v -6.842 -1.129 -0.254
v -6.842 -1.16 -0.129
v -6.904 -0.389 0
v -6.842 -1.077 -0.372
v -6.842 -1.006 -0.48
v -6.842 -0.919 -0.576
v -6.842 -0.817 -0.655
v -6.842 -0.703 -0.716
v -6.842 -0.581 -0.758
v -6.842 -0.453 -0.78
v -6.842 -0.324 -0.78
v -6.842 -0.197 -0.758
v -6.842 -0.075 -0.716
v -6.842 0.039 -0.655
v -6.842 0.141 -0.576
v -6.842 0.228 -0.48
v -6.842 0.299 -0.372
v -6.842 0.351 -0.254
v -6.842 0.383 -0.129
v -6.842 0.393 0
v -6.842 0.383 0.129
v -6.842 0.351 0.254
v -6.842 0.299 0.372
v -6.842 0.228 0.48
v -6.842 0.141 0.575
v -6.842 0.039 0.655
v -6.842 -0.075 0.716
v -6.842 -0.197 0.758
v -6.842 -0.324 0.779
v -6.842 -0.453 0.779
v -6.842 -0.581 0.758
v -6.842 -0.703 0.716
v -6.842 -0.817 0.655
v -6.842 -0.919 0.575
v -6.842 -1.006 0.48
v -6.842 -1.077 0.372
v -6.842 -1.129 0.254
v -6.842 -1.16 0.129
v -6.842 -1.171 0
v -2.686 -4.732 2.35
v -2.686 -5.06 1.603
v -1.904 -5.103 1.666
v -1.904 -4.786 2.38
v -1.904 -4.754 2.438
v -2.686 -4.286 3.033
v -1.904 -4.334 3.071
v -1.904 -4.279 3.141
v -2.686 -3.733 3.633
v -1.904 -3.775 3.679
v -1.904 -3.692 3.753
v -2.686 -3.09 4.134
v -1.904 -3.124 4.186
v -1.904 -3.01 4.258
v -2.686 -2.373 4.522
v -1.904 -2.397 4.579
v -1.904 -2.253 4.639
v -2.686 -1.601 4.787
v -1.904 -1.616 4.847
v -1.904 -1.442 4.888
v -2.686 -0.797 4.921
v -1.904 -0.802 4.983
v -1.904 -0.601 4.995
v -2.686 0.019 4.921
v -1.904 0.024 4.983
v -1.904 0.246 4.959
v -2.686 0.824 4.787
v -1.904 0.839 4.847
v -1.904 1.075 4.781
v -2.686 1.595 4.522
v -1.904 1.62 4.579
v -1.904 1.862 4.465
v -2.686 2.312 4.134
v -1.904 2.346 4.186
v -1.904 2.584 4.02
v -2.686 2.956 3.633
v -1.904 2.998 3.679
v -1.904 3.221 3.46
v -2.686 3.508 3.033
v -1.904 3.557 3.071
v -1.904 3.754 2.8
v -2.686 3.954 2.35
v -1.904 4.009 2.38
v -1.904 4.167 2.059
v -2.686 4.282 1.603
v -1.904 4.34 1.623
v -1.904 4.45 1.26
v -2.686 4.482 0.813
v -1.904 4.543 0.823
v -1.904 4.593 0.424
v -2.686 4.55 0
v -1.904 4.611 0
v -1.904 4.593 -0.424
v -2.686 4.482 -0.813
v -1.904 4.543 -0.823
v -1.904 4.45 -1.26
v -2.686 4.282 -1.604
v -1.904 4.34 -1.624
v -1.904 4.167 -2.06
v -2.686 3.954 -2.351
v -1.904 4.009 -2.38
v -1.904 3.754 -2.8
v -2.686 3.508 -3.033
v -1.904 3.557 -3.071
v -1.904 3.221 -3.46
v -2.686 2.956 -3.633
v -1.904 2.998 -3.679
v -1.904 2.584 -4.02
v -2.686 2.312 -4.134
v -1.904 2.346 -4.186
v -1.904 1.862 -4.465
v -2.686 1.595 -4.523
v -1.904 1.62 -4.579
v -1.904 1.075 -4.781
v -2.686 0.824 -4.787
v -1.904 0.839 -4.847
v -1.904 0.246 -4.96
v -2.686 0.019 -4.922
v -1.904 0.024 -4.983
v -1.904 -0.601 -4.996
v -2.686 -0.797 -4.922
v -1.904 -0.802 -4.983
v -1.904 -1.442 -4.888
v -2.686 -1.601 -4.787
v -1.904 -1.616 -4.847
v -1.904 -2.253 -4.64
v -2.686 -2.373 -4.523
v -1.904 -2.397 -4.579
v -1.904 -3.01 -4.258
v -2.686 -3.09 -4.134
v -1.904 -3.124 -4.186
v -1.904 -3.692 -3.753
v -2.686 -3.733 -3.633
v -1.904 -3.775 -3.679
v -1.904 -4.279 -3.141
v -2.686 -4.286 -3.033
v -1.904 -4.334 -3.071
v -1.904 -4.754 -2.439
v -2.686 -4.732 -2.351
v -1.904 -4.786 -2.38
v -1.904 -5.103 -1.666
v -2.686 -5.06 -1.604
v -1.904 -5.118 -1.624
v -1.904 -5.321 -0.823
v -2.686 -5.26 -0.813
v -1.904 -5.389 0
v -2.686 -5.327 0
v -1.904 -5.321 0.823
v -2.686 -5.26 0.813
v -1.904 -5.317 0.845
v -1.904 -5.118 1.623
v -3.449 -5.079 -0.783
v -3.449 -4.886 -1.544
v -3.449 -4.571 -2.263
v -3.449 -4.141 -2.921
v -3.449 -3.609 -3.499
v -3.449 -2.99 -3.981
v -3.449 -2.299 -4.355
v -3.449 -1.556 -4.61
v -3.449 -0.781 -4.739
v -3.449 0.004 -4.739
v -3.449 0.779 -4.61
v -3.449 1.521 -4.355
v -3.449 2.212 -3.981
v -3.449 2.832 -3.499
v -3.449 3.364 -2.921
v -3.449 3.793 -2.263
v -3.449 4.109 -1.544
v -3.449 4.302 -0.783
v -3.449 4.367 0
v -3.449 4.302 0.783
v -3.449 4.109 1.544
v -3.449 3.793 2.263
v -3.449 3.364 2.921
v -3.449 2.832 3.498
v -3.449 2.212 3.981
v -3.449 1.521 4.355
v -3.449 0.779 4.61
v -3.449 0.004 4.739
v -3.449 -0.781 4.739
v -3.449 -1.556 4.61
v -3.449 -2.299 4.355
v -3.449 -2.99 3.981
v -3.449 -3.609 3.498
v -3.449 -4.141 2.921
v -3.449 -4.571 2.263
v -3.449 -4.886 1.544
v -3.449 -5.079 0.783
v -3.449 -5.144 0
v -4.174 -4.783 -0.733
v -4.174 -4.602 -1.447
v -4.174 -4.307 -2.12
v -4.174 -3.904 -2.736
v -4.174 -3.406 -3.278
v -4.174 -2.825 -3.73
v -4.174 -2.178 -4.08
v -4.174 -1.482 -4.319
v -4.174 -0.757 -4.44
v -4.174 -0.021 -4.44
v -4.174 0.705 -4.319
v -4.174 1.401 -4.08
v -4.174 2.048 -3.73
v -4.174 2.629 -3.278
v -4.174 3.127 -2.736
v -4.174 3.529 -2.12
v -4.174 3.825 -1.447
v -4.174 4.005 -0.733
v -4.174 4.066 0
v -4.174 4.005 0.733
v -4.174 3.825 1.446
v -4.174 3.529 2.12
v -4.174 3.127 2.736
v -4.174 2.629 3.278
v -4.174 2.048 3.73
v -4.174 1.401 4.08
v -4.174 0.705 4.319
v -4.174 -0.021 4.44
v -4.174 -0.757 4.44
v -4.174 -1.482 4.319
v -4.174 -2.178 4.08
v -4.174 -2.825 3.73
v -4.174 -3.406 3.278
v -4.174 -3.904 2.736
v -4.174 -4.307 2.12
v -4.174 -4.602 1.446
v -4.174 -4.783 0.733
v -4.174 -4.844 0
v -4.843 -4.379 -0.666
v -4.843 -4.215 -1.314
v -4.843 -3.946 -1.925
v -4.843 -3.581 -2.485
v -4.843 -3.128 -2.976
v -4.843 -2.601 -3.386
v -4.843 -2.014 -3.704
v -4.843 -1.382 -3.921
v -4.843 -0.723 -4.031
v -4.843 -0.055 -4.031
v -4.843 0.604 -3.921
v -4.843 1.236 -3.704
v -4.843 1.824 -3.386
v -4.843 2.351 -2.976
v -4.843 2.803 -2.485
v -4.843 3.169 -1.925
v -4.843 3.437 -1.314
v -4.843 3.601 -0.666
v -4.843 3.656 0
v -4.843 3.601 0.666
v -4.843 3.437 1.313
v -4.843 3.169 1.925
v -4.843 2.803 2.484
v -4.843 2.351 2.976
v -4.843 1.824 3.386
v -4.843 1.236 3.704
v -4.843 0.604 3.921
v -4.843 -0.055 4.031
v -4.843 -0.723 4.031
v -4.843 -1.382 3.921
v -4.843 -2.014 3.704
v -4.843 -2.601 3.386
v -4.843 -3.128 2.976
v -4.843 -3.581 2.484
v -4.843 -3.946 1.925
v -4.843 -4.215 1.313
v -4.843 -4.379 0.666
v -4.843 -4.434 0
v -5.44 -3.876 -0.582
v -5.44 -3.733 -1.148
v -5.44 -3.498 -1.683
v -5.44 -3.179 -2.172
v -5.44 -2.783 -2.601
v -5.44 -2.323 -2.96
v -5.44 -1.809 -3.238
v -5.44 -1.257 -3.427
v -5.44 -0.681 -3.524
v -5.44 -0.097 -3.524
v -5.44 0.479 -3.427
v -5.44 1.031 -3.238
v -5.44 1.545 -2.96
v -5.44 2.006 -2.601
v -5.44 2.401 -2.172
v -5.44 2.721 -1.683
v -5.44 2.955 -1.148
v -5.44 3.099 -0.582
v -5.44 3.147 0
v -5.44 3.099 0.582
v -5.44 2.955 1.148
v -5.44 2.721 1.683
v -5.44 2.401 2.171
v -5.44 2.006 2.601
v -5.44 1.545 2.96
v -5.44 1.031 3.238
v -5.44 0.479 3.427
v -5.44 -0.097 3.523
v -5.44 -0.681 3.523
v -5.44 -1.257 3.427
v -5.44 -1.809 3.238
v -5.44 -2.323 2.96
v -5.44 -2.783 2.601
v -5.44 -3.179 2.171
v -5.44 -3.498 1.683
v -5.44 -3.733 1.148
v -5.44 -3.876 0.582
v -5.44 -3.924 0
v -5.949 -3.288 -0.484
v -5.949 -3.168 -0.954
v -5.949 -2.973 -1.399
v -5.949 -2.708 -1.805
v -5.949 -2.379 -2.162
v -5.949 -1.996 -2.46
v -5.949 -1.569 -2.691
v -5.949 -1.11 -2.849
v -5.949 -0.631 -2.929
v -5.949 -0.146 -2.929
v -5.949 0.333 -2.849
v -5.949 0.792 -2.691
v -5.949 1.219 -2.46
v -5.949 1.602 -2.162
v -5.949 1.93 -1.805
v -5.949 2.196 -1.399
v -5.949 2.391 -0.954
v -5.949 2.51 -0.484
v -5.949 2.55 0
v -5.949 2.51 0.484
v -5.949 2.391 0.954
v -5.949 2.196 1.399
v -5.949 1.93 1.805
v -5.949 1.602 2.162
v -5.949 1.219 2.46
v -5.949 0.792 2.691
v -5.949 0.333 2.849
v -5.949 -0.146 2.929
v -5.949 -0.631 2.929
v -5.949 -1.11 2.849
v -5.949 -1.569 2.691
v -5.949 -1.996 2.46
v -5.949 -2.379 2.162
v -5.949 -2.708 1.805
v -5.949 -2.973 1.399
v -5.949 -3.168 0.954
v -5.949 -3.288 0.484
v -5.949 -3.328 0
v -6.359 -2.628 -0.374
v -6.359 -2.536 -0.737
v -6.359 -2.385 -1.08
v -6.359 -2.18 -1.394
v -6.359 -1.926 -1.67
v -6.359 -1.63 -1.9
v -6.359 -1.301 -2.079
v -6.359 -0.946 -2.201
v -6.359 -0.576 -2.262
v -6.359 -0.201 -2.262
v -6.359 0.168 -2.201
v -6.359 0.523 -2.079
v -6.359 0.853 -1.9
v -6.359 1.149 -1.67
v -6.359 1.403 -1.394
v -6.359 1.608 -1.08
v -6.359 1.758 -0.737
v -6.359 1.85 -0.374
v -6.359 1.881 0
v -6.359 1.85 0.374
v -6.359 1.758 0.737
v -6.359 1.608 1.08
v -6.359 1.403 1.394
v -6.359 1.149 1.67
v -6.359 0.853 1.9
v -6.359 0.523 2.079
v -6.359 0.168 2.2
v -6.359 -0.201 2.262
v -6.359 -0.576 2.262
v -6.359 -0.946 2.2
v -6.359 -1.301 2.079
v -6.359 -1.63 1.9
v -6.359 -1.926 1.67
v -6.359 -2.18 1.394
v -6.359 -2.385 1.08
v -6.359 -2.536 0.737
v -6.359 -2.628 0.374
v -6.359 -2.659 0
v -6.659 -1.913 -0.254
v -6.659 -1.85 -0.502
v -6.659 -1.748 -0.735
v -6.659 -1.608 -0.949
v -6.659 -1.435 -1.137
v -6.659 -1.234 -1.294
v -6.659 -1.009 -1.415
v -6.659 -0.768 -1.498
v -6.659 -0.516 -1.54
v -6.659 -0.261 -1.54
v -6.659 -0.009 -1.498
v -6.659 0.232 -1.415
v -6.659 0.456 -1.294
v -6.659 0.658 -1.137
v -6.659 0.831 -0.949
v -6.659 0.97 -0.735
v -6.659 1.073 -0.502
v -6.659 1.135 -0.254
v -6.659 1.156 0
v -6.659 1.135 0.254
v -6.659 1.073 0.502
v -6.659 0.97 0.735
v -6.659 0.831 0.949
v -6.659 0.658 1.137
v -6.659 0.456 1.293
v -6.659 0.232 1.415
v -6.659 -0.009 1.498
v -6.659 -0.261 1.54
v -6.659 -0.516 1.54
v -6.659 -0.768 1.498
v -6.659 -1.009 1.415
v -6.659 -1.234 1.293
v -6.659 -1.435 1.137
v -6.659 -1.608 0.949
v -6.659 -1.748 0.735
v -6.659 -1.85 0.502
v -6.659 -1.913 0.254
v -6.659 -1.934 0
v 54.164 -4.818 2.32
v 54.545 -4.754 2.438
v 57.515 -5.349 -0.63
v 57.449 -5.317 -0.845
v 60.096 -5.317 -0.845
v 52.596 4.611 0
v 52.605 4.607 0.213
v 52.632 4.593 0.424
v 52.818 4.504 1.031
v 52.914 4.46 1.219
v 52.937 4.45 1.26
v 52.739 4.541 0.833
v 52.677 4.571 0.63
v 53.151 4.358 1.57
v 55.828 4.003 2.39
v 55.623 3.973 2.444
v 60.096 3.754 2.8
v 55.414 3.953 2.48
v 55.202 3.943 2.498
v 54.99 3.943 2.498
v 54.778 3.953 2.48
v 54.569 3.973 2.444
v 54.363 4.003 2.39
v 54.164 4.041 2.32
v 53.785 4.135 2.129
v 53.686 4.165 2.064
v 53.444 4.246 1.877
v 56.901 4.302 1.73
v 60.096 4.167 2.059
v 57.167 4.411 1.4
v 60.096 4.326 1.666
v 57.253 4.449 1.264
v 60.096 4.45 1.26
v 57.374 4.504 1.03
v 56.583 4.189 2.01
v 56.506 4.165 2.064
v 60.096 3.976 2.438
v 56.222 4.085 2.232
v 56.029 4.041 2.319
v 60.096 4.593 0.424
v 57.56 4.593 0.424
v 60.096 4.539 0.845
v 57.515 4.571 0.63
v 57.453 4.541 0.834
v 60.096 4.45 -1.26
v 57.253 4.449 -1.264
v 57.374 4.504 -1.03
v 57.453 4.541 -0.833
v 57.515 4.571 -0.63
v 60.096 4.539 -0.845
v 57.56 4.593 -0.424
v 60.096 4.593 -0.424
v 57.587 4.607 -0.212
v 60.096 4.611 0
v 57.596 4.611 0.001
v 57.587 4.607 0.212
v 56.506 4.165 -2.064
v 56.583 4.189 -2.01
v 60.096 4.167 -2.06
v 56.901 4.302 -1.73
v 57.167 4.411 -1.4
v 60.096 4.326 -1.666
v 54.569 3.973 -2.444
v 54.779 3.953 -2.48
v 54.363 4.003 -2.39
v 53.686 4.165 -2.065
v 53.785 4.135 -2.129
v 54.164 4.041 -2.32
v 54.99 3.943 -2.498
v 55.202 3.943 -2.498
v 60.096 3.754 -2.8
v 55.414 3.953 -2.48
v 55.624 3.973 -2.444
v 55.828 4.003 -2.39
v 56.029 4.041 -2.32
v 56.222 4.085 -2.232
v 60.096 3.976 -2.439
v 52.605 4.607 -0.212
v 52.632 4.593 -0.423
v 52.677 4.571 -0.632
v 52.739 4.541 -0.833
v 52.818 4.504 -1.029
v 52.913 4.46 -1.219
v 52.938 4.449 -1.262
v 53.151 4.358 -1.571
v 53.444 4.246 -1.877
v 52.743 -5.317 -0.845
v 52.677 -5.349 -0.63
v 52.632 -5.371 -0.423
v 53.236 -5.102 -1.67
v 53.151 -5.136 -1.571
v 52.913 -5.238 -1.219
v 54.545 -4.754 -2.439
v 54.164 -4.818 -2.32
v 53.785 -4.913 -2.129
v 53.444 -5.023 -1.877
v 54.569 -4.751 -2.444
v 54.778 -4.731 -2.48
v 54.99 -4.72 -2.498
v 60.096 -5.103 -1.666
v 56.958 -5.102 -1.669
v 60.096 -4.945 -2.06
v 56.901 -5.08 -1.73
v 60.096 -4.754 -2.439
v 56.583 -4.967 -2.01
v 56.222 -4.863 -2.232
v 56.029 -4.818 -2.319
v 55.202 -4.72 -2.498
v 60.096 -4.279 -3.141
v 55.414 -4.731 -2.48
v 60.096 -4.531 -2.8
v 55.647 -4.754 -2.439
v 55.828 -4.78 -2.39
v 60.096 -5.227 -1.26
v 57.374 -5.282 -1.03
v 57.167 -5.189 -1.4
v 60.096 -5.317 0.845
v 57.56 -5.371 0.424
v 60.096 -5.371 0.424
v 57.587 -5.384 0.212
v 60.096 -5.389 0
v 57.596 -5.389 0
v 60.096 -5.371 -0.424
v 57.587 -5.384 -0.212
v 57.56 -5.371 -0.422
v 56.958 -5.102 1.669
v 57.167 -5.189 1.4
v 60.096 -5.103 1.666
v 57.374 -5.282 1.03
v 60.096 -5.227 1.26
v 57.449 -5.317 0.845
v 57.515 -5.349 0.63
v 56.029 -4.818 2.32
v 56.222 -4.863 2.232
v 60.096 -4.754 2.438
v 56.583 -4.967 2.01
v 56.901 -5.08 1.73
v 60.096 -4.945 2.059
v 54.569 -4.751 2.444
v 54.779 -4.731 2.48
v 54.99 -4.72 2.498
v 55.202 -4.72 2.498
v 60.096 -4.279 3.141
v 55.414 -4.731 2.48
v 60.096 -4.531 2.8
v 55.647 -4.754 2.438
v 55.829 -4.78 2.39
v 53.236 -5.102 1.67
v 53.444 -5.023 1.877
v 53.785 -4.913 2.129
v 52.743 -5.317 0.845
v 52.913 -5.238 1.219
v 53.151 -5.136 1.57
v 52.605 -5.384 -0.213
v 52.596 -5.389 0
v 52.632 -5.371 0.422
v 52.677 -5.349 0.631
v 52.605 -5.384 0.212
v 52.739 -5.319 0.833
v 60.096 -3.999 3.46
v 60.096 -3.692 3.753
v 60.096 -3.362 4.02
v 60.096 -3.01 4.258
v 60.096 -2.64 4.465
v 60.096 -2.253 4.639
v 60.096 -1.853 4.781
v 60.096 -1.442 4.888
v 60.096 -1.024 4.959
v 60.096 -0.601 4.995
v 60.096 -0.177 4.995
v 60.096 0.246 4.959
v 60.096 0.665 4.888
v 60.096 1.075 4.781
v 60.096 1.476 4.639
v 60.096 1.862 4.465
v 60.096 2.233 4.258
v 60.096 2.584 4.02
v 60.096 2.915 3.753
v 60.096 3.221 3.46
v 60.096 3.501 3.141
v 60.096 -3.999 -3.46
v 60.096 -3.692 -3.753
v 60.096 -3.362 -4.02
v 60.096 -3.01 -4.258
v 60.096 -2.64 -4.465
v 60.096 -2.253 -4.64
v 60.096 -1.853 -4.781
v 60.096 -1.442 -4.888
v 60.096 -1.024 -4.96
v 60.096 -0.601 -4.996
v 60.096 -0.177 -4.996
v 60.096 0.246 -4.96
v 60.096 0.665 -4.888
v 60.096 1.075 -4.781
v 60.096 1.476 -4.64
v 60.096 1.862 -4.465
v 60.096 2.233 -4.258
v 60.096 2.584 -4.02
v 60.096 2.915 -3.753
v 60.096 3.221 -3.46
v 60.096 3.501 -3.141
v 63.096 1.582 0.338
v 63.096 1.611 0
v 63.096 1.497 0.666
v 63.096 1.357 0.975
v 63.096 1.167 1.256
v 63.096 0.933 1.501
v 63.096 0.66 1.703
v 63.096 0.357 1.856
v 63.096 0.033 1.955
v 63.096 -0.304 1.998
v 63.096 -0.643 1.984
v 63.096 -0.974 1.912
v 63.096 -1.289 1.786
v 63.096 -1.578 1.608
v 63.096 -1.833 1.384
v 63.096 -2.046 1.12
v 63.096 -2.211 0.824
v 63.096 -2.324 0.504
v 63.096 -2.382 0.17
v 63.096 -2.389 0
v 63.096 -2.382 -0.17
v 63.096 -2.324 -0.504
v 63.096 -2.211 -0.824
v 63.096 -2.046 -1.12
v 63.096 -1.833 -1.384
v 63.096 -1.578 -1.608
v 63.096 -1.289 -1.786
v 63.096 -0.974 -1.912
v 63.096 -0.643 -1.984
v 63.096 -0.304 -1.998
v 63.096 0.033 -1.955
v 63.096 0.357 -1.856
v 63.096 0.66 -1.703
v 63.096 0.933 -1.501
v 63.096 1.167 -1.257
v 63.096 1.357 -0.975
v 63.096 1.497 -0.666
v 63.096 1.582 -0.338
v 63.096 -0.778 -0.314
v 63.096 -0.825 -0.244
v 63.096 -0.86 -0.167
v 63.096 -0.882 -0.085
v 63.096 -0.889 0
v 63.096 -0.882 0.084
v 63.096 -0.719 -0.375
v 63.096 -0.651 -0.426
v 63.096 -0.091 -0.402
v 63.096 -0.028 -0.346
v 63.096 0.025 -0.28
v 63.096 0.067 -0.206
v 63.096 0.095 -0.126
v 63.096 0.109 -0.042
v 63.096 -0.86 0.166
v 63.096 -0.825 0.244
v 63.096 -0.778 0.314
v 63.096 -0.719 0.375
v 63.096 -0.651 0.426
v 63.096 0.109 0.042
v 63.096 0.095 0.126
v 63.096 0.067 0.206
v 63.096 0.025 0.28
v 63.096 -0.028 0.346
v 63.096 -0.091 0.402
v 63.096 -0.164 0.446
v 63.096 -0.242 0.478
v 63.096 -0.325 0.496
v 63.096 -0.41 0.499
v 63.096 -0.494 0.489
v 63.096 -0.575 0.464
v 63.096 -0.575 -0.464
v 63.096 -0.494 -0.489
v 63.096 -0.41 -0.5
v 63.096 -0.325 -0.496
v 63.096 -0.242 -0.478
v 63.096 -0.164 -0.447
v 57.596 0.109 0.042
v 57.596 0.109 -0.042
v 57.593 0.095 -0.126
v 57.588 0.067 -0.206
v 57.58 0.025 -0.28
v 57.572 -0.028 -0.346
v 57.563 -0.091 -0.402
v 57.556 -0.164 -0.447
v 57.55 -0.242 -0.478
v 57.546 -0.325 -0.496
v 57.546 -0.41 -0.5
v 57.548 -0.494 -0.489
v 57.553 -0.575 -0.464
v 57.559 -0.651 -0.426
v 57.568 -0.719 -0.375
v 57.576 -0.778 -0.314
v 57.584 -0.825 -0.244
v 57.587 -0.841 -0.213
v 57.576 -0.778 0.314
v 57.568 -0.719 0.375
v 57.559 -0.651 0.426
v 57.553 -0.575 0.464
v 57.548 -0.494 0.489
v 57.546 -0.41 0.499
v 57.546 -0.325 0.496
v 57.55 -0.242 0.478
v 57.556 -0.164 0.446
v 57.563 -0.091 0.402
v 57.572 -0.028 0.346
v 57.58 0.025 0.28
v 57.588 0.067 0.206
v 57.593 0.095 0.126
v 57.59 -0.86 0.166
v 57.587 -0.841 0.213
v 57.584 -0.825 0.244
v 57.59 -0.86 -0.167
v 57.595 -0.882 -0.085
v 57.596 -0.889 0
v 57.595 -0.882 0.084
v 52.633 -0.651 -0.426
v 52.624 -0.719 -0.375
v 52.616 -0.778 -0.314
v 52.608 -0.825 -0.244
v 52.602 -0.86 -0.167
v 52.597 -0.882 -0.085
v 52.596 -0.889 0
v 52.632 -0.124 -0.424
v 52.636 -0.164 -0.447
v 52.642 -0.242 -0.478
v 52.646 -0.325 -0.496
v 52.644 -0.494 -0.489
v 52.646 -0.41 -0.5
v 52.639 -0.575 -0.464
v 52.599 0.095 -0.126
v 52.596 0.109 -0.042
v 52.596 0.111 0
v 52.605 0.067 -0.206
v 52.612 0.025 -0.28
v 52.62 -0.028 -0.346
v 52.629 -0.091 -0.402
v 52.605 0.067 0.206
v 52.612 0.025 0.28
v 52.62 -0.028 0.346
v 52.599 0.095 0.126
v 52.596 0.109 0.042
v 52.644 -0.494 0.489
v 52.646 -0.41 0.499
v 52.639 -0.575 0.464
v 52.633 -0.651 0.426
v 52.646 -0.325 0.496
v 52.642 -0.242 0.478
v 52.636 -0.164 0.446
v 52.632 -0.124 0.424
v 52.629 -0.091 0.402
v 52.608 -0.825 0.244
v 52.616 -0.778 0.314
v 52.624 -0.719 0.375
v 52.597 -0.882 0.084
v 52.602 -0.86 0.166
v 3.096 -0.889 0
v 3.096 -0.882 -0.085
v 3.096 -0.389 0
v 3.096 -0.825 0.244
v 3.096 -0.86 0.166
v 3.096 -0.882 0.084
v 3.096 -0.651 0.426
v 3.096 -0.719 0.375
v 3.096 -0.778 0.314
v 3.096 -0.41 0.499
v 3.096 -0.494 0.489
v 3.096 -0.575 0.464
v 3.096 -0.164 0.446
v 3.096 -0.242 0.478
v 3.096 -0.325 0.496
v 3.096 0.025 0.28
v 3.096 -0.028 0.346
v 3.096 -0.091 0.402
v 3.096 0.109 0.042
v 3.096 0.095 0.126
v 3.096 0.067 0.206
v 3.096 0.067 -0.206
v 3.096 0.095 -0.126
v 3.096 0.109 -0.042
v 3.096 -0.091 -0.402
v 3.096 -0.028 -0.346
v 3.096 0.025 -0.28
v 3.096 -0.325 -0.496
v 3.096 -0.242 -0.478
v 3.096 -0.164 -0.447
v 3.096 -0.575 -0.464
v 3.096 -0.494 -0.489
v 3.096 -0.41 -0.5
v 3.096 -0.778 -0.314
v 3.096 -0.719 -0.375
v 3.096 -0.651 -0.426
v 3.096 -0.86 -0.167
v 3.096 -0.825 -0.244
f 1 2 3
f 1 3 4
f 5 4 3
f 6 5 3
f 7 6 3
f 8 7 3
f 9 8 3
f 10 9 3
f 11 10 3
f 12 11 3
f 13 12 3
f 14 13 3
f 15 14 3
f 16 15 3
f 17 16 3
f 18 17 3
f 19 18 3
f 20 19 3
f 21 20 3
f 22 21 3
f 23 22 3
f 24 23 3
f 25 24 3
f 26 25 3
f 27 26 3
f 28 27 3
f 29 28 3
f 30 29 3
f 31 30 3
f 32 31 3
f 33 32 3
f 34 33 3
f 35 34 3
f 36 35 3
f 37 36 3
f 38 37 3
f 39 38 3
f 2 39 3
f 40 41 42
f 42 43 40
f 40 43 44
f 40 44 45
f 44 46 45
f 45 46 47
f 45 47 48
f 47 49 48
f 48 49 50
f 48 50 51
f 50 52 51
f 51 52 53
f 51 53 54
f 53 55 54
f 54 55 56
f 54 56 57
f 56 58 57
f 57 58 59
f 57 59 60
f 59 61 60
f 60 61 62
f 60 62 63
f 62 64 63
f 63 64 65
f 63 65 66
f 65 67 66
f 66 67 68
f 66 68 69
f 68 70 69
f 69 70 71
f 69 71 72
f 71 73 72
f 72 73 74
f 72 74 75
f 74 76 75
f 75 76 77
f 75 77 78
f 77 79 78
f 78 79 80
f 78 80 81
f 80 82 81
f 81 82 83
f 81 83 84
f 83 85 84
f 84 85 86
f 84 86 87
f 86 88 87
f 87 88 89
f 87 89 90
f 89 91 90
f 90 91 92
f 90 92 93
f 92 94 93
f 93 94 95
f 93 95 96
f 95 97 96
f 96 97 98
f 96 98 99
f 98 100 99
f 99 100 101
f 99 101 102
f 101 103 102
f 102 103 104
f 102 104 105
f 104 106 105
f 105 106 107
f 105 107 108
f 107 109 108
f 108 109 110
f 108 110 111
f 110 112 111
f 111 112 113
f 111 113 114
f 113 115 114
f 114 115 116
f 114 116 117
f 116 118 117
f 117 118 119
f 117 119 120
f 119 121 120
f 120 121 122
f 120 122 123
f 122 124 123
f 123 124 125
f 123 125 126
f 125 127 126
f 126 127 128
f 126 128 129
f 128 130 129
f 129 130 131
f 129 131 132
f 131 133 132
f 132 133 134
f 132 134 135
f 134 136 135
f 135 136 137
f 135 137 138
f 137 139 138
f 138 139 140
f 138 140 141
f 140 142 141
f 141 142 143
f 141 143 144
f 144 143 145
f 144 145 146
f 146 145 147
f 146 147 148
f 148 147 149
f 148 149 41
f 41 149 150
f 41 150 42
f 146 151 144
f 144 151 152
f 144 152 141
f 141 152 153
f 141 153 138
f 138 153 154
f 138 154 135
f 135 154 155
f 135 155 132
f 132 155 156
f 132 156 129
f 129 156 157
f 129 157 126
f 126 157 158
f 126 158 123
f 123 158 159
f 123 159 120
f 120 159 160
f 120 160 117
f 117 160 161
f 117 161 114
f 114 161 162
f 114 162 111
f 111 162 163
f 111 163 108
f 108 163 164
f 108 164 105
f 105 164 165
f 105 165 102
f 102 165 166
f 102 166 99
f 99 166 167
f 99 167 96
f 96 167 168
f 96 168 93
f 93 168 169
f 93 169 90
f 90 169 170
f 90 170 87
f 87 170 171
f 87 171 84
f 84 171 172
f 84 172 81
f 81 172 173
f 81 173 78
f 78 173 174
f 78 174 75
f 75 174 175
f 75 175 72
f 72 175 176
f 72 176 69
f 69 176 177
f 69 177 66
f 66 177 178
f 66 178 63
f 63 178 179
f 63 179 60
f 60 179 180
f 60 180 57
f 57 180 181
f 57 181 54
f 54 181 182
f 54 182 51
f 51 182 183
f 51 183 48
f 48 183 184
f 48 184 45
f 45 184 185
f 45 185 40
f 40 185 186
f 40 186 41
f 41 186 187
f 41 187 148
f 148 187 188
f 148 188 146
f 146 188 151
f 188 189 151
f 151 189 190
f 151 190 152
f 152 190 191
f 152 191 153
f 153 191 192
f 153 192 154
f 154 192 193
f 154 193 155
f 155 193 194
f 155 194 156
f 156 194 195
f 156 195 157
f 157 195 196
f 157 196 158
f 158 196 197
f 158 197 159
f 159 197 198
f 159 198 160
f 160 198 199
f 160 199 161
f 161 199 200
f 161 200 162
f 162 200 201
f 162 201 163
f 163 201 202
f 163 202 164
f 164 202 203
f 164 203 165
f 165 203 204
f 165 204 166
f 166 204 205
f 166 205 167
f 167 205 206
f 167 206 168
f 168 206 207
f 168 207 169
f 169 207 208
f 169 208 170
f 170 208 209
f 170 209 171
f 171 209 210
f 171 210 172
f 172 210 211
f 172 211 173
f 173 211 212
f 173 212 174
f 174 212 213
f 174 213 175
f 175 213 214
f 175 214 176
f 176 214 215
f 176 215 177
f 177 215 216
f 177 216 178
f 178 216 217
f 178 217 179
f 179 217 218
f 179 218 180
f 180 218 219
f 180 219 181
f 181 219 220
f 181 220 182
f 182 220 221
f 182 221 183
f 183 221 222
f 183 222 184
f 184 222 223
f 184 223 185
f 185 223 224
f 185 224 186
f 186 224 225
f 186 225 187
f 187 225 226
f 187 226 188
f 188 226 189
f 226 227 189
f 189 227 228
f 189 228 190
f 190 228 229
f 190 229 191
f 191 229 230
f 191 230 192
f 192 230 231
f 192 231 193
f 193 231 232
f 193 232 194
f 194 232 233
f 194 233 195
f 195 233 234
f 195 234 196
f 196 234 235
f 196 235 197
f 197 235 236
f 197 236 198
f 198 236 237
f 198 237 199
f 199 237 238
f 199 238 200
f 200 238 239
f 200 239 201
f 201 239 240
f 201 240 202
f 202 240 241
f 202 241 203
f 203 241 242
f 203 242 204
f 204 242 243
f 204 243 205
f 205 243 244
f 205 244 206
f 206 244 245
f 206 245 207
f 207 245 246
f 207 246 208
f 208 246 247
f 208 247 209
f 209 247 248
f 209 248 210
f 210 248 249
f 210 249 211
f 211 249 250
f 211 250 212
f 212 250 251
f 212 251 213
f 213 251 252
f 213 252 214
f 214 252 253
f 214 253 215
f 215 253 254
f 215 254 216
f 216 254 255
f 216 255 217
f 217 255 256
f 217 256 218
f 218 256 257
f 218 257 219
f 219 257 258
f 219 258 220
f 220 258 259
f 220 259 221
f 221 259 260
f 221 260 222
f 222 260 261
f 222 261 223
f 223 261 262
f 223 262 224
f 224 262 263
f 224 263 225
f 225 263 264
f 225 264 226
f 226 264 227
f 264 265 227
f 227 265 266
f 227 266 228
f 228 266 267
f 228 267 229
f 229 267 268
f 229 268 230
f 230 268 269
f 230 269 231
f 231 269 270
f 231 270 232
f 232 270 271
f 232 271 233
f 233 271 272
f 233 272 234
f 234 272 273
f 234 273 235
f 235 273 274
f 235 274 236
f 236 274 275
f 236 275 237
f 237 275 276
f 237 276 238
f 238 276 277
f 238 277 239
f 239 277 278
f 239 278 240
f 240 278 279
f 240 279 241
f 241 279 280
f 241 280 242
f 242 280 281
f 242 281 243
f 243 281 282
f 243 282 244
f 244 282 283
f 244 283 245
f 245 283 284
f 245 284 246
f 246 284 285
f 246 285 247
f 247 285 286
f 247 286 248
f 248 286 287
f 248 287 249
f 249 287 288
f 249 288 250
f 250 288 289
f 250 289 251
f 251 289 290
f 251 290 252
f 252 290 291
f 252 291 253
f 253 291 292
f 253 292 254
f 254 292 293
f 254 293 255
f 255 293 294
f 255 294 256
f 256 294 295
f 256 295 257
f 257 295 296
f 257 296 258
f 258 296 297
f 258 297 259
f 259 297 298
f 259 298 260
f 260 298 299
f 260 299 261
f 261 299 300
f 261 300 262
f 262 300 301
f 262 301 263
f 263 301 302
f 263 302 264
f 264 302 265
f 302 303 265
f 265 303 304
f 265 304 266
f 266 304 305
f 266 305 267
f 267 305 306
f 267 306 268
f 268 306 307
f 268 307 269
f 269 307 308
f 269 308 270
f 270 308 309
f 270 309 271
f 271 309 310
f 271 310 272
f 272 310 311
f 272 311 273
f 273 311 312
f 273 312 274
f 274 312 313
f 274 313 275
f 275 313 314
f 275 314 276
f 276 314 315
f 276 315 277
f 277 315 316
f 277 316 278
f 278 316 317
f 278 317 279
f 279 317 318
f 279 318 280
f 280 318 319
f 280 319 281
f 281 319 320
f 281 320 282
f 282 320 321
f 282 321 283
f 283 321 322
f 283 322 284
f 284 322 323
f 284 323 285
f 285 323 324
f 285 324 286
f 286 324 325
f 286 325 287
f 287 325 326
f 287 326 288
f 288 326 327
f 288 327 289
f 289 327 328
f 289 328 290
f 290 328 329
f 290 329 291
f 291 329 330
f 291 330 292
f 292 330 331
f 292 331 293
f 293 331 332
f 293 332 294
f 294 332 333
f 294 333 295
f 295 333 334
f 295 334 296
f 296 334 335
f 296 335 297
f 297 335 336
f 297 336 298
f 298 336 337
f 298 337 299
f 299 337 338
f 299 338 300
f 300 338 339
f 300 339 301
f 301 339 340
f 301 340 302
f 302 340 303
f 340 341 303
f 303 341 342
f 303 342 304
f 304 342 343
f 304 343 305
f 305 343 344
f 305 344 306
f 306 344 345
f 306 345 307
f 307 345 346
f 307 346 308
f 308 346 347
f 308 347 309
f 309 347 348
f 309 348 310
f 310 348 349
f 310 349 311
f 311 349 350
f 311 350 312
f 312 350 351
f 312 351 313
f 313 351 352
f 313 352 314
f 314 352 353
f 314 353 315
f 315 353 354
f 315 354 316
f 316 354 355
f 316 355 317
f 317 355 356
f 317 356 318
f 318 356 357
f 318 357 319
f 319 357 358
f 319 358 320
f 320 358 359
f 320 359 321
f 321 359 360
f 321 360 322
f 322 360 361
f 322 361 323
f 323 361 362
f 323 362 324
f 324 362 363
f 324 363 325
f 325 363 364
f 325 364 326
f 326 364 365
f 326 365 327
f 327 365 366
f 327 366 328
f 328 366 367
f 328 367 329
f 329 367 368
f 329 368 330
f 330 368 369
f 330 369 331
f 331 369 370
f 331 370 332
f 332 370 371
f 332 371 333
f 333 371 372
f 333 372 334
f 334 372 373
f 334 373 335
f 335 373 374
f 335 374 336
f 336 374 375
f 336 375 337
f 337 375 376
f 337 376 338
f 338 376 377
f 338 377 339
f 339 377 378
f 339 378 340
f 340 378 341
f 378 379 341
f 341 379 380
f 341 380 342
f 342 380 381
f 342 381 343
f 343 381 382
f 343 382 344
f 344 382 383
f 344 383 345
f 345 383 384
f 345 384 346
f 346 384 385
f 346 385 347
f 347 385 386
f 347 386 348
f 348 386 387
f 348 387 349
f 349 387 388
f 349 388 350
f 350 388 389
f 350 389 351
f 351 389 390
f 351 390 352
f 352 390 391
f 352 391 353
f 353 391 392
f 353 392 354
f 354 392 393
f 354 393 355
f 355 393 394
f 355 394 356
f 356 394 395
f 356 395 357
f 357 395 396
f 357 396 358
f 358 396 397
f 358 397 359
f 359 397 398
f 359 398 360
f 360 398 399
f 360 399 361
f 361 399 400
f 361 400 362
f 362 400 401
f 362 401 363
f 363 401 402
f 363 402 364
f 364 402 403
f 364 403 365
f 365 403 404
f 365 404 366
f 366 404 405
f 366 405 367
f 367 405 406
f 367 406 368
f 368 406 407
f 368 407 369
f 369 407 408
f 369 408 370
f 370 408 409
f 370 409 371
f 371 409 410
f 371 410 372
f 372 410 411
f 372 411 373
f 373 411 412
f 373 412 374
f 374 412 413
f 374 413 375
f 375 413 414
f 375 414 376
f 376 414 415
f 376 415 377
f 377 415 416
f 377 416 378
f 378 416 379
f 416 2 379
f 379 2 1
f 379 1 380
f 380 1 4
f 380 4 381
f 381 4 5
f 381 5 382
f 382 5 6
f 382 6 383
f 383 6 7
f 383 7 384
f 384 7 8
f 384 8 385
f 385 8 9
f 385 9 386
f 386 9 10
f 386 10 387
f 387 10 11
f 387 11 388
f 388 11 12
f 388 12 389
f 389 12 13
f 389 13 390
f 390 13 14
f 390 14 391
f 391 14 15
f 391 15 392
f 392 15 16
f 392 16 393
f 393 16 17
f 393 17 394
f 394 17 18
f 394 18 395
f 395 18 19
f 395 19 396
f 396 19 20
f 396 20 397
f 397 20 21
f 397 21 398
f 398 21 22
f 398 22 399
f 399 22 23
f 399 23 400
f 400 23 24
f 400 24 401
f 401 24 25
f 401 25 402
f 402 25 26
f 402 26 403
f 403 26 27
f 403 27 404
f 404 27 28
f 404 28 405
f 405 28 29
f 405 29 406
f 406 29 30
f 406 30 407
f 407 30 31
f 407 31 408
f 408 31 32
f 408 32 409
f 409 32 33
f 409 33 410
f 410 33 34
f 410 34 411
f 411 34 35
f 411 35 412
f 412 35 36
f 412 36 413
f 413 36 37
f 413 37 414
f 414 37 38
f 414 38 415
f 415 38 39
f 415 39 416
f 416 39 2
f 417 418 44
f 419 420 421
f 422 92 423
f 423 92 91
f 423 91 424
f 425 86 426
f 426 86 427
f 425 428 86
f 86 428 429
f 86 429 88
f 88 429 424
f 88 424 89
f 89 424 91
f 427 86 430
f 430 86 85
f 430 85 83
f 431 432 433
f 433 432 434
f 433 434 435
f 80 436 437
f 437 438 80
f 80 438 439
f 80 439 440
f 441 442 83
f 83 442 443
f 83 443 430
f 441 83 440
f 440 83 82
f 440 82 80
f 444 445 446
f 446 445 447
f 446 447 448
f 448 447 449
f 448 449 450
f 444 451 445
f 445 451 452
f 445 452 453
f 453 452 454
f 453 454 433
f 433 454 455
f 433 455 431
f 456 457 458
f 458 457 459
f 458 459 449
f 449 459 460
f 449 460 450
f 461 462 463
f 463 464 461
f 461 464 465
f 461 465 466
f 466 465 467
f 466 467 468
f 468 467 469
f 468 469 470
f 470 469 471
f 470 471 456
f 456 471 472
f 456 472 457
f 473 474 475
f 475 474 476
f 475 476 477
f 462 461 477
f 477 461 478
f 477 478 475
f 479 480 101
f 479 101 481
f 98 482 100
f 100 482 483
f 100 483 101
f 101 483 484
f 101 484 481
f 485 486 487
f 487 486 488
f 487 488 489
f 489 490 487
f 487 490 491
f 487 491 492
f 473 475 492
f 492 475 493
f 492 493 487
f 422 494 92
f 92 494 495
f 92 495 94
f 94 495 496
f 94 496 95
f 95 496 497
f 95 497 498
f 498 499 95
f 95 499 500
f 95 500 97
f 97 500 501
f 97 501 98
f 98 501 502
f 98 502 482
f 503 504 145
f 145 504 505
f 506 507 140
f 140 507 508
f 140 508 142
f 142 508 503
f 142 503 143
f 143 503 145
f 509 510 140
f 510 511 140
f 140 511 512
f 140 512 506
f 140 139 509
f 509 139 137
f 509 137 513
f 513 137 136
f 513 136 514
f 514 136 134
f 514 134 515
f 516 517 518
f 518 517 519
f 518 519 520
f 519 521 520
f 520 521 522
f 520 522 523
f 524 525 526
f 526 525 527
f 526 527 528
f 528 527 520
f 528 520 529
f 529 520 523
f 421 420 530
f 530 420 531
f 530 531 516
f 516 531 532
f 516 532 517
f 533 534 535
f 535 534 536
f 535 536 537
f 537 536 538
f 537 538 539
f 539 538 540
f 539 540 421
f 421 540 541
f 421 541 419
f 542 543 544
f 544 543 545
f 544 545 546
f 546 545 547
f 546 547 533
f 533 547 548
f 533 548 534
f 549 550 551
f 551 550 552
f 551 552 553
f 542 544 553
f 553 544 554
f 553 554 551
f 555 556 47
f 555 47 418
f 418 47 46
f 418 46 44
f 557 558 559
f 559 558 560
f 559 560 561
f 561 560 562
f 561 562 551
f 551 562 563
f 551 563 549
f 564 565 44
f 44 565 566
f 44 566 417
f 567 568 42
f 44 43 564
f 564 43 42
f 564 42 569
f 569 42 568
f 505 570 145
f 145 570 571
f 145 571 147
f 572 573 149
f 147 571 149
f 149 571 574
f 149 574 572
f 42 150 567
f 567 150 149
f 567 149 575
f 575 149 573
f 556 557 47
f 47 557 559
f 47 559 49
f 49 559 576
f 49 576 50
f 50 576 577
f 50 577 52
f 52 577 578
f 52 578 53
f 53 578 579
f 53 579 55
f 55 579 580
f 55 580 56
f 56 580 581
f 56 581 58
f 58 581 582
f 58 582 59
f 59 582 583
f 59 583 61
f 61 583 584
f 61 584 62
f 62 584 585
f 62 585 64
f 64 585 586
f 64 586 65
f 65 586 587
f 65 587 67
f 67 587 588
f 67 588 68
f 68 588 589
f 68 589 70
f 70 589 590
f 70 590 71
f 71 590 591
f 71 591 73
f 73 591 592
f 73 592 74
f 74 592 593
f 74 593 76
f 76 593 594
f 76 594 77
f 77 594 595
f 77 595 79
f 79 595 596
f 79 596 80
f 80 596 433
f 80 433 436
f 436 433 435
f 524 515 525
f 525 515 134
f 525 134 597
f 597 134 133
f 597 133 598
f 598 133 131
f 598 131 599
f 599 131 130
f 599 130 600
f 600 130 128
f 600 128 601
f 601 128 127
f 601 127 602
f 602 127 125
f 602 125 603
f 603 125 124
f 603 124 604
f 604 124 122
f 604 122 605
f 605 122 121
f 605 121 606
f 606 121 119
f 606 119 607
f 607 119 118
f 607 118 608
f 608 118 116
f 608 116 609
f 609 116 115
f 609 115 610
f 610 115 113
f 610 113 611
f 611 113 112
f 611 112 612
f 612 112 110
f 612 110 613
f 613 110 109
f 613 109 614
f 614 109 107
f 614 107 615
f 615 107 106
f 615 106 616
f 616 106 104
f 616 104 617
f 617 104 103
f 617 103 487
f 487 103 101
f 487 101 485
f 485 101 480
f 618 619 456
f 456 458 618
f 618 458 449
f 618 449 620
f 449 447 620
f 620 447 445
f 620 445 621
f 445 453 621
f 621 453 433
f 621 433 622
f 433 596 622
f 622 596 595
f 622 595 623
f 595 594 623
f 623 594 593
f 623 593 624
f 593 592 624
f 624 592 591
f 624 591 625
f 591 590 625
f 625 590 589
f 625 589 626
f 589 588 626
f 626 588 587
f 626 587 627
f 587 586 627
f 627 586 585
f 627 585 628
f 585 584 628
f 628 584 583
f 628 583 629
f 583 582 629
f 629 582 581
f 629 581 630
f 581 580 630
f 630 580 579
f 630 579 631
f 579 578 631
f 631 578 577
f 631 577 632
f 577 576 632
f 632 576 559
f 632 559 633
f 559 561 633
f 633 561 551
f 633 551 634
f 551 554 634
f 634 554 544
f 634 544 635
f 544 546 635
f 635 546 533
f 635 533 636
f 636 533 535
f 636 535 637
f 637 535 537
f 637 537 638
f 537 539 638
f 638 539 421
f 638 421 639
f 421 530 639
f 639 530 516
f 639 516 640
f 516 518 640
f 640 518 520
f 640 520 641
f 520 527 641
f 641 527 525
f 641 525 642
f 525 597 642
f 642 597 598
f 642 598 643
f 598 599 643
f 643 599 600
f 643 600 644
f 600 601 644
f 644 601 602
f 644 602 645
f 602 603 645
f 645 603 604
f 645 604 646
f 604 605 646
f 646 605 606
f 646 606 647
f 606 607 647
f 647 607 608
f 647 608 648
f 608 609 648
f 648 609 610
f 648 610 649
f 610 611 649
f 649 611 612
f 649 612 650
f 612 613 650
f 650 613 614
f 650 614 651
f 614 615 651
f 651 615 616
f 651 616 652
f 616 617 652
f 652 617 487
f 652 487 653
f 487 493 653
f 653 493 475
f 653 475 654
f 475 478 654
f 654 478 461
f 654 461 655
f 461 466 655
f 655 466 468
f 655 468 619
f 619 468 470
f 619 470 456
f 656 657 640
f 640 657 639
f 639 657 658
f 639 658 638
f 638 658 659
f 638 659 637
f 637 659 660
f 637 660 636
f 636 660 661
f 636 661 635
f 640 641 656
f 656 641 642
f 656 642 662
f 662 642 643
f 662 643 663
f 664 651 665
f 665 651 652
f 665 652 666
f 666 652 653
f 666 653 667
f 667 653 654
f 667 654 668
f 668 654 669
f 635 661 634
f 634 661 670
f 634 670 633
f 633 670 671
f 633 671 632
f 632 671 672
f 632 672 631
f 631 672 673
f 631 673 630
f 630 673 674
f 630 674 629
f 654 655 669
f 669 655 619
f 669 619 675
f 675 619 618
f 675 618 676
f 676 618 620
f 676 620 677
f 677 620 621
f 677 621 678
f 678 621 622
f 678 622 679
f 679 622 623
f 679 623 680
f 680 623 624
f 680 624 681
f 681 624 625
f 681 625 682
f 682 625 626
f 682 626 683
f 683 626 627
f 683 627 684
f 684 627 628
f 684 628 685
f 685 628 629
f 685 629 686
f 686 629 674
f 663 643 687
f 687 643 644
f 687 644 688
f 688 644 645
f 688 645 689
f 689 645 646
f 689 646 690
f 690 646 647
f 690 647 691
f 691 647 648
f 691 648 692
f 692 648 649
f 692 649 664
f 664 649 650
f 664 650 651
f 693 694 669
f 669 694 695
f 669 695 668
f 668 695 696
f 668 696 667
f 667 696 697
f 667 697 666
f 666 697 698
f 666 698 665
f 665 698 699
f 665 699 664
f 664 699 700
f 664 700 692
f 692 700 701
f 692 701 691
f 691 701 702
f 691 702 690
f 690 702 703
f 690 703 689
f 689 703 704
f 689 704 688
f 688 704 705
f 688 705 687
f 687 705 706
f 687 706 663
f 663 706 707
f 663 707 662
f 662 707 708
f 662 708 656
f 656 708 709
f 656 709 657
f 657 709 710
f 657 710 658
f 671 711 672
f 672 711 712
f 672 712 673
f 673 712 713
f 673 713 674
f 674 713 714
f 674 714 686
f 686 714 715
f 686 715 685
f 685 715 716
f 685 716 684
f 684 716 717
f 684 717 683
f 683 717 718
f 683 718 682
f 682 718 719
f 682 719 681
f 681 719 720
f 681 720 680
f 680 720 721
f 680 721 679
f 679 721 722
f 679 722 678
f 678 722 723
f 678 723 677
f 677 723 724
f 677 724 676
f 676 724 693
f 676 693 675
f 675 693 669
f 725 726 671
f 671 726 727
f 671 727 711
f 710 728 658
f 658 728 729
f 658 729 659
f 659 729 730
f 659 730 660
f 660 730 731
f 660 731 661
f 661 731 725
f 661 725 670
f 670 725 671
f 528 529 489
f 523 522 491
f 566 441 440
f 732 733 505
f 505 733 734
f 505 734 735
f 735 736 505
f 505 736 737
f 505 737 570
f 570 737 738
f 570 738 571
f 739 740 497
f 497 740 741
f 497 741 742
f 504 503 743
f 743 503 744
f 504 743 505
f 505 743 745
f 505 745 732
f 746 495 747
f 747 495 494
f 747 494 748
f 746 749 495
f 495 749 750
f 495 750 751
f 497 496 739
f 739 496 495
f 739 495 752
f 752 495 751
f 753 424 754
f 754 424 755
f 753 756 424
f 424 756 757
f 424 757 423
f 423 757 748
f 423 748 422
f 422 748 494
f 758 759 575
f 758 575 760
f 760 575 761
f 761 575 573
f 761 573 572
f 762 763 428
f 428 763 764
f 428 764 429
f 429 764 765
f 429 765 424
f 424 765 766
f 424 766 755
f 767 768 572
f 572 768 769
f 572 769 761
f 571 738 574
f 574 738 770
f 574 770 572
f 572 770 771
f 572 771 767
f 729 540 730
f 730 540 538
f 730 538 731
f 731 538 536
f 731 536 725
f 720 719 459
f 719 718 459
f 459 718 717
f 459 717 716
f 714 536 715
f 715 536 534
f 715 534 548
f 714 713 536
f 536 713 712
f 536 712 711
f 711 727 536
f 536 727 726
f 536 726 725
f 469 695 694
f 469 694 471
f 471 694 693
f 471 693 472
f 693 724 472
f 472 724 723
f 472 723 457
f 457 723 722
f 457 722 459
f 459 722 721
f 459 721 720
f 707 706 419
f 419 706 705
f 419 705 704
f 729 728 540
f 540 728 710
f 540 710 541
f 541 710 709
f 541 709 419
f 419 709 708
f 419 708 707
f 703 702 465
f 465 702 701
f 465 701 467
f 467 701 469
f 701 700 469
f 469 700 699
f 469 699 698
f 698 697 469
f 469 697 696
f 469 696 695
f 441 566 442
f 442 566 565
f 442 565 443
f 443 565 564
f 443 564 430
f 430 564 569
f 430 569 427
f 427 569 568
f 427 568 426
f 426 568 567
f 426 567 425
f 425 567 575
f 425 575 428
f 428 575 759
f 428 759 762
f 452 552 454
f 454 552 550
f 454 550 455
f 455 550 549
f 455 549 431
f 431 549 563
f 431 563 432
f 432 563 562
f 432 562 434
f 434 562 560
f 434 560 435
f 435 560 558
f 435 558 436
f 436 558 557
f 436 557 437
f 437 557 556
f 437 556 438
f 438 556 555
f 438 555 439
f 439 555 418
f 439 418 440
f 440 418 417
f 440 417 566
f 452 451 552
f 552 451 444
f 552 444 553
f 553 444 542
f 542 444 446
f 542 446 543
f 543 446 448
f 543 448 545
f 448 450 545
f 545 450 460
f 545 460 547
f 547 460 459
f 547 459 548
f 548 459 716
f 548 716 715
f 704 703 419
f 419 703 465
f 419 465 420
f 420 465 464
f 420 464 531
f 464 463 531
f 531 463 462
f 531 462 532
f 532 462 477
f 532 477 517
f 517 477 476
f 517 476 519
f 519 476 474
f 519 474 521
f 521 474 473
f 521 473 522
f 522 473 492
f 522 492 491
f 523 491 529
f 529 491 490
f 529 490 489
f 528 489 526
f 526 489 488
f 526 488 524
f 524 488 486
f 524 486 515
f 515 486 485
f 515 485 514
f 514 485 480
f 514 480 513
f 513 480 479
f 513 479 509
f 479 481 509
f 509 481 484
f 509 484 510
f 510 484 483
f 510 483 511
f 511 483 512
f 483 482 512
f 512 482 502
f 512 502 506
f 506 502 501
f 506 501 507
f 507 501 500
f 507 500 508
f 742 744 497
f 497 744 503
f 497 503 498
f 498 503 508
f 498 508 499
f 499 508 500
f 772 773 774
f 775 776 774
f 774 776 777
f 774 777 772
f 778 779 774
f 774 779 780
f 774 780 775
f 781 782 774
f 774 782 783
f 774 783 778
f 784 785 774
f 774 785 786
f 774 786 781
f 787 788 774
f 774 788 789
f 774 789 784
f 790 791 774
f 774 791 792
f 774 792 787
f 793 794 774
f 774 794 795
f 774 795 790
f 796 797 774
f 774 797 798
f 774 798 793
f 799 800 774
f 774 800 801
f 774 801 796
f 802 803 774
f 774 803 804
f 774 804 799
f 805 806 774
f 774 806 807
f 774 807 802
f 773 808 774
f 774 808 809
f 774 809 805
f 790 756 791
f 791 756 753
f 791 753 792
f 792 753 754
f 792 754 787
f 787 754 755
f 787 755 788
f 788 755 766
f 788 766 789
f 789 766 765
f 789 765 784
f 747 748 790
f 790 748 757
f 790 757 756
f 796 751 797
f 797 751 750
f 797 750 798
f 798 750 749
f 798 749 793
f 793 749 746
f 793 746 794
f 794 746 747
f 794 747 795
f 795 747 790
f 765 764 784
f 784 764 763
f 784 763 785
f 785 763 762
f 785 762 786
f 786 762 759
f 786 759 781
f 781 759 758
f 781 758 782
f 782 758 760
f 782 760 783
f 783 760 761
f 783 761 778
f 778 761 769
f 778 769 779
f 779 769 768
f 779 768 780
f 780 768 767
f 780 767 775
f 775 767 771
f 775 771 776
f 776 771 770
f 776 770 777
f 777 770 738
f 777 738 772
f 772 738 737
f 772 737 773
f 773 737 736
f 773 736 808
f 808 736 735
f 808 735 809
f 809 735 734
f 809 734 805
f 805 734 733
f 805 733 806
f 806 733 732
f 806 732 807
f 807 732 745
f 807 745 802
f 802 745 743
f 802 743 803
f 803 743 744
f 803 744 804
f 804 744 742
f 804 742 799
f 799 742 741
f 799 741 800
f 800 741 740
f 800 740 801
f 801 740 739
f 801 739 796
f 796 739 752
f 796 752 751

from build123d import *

# Parameters (mm, degrees)
SKETCH4_R               = 0.5
CUT_EXTRUDE1_DEPTH      = 60
CUT_EXTRUDE2_DEPTH      = 65.078926224
CUT_EXTRUDE2_DEPTH_BACK = 65.078926224
SKETCH5_R               = 2.5


with BuildPart() as part:
    # Sketch3 → Revolve1 (revolve)
    with BuildSketch(Plane.XY):
        with BuildLine():
            Line((-1.903971709, 4.611227449), (60.096028291, 4.611227449))
            Line((60.096028291, 4.611227449), (63.096028291, 1.611227449))
            Line((63.096028291, 1.611227449), (63.096028291, -0.388772551))
            Line((63.096028291, -0.388772551), (-6.903971709, -0.388772551))
            ThreePointArc((-6.903971709, -0.388772551), (-5.439505615, 3.146761355), (-1.903971709, 4.611227449))
        make_face()
    revolve(axis=Axis((63.096028291, -0.388772551, 0), (-1, 0, 0)))

    # Sketch4 → Cut-Extrude1 (cut)
    with BuildSketch(Plane(origin=(63.096028291, 0, 0), x_dir=(0, 0, -1), z_dir=(1, 0, 0))):
        with Locations(Location((0, -0.388772551, 0), (0, 0, 90))):
            Circle(SKETCH4_R)
    extrude(amount=-CUT_EXTRUDE1_DEPTH, mode=Mode.SUBTRACT)

    # Sketch5 → Cut-Extrude2 (cut, two sides: drawn at the far end of the back side and taken through both)
    with BuildSketch(Plane(origin=(0, 4.611227449, 0), x_dir=(1, 0, 0), z_dir=(0, 1, 0)).offset(-CUT_EXTRUDE2_DEPTH_BACK)):
        with Locations(Location((55.096028291, 0, 0), (0, 0, 180))):
            Circle(SKETCH5_R)
    extrude(amount=CUT_EXTRUDE2_DEPTH + CUT_EXTRUDE2_DEPTH_BACK, mode=Mode.SUBTRACT)


solid = part.part
